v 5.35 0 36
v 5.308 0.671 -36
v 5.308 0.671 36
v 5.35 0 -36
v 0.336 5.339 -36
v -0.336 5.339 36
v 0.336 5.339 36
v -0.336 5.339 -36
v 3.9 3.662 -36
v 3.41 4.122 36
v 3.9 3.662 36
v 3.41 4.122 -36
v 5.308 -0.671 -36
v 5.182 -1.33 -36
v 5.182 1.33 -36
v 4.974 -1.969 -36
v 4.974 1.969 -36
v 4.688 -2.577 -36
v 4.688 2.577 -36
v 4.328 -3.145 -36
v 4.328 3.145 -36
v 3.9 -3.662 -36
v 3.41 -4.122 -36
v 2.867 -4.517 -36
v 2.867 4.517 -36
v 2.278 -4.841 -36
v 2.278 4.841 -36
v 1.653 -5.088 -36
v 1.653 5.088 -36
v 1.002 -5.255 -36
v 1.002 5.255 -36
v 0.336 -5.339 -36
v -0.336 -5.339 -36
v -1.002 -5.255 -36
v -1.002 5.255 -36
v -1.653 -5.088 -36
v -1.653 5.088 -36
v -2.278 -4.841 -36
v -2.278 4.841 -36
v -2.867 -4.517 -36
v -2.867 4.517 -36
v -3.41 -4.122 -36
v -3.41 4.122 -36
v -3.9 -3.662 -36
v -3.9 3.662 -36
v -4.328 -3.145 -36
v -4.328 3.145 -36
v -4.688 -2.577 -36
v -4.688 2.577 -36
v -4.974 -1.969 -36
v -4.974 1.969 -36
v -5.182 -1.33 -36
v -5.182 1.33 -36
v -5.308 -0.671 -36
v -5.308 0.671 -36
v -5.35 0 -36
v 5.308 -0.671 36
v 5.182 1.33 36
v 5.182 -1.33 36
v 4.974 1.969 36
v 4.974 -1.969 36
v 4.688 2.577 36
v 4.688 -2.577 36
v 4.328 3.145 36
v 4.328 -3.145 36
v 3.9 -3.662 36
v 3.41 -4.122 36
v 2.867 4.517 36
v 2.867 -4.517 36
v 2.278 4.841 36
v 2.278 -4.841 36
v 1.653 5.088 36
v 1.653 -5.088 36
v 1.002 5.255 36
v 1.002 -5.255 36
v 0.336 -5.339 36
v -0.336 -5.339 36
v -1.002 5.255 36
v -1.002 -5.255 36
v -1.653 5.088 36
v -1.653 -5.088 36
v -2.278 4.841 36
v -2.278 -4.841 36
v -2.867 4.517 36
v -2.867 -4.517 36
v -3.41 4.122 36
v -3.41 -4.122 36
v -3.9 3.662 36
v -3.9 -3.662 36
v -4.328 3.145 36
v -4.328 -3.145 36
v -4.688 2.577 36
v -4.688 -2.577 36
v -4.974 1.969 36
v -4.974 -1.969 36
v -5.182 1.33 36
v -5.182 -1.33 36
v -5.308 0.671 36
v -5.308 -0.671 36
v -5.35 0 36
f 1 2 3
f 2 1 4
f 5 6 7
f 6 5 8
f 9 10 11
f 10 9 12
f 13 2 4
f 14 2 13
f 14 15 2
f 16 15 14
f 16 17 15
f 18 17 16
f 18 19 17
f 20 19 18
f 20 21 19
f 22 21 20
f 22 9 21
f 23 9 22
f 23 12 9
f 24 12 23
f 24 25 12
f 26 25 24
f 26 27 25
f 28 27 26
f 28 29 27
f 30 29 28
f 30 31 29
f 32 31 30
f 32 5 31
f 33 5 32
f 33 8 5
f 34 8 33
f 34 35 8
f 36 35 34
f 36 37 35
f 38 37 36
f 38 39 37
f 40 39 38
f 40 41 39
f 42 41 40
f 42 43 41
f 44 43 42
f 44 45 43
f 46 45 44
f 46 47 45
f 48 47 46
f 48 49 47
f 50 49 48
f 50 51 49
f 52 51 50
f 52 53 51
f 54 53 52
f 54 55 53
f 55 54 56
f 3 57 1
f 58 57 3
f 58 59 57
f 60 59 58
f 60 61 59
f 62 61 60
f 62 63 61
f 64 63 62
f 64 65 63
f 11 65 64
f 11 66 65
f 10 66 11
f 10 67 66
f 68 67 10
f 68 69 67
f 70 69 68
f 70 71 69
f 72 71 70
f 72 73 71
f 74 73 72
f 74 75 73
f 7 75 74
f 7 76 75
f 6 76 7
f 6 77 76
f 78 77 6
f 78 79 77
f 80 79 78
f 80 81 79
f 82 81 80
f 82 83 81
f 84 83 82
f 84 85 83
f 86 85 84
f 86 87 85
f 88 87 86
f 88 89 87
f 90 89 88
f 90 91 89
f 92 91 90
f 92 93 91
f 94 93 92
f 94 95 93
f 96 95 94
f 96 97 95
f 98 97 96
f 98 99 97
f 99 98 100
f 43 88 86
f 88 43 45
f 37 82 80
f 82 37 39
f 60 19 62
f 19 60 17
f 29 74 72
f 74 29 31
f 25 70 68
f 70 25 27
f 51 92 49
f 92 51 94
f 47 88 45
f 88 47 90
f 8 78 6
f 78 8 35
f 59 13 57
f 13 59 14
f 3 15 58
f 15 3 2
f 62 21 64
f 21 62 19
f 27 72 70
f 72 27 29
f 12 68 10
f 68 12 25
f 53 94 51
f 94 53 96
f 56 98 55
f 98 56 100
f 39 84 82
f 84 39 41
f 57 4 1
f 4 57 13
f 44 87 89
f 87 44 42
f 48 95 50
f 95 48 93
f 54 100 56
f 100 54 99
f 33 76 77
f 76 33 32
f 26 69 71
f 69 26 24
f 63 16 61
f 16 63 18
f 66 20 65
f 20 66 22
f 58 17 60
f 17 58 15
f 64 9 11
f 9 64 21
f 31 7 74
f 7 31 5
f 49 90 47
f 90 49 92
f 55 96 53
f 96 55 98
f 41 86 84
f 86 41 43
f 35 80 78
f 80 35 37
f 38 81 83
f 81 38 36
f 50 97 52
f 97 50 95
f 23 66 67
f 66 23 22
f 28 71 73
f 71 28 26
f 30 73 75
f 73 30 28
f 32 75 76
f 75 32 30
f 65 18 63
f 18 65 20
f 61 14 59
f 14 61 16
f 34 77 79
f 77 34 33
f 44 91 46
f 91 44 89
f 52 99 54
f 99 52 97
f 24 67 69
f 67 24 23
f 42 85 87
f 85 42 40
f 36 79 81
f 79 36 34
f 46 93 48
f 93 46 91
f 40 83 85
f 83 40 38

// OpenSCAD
$fn = 50;


difference() {
	union() {
		translate(v = [0, 0, -36.0000000000]) {
			cylinder(h = 72, r = 5.3500000000);
		}
	}
	union() {
		translate(v = [0, 0, -100.0000000000]) {
			cylinder(h = 200, r = 0);
		}
	}
}
